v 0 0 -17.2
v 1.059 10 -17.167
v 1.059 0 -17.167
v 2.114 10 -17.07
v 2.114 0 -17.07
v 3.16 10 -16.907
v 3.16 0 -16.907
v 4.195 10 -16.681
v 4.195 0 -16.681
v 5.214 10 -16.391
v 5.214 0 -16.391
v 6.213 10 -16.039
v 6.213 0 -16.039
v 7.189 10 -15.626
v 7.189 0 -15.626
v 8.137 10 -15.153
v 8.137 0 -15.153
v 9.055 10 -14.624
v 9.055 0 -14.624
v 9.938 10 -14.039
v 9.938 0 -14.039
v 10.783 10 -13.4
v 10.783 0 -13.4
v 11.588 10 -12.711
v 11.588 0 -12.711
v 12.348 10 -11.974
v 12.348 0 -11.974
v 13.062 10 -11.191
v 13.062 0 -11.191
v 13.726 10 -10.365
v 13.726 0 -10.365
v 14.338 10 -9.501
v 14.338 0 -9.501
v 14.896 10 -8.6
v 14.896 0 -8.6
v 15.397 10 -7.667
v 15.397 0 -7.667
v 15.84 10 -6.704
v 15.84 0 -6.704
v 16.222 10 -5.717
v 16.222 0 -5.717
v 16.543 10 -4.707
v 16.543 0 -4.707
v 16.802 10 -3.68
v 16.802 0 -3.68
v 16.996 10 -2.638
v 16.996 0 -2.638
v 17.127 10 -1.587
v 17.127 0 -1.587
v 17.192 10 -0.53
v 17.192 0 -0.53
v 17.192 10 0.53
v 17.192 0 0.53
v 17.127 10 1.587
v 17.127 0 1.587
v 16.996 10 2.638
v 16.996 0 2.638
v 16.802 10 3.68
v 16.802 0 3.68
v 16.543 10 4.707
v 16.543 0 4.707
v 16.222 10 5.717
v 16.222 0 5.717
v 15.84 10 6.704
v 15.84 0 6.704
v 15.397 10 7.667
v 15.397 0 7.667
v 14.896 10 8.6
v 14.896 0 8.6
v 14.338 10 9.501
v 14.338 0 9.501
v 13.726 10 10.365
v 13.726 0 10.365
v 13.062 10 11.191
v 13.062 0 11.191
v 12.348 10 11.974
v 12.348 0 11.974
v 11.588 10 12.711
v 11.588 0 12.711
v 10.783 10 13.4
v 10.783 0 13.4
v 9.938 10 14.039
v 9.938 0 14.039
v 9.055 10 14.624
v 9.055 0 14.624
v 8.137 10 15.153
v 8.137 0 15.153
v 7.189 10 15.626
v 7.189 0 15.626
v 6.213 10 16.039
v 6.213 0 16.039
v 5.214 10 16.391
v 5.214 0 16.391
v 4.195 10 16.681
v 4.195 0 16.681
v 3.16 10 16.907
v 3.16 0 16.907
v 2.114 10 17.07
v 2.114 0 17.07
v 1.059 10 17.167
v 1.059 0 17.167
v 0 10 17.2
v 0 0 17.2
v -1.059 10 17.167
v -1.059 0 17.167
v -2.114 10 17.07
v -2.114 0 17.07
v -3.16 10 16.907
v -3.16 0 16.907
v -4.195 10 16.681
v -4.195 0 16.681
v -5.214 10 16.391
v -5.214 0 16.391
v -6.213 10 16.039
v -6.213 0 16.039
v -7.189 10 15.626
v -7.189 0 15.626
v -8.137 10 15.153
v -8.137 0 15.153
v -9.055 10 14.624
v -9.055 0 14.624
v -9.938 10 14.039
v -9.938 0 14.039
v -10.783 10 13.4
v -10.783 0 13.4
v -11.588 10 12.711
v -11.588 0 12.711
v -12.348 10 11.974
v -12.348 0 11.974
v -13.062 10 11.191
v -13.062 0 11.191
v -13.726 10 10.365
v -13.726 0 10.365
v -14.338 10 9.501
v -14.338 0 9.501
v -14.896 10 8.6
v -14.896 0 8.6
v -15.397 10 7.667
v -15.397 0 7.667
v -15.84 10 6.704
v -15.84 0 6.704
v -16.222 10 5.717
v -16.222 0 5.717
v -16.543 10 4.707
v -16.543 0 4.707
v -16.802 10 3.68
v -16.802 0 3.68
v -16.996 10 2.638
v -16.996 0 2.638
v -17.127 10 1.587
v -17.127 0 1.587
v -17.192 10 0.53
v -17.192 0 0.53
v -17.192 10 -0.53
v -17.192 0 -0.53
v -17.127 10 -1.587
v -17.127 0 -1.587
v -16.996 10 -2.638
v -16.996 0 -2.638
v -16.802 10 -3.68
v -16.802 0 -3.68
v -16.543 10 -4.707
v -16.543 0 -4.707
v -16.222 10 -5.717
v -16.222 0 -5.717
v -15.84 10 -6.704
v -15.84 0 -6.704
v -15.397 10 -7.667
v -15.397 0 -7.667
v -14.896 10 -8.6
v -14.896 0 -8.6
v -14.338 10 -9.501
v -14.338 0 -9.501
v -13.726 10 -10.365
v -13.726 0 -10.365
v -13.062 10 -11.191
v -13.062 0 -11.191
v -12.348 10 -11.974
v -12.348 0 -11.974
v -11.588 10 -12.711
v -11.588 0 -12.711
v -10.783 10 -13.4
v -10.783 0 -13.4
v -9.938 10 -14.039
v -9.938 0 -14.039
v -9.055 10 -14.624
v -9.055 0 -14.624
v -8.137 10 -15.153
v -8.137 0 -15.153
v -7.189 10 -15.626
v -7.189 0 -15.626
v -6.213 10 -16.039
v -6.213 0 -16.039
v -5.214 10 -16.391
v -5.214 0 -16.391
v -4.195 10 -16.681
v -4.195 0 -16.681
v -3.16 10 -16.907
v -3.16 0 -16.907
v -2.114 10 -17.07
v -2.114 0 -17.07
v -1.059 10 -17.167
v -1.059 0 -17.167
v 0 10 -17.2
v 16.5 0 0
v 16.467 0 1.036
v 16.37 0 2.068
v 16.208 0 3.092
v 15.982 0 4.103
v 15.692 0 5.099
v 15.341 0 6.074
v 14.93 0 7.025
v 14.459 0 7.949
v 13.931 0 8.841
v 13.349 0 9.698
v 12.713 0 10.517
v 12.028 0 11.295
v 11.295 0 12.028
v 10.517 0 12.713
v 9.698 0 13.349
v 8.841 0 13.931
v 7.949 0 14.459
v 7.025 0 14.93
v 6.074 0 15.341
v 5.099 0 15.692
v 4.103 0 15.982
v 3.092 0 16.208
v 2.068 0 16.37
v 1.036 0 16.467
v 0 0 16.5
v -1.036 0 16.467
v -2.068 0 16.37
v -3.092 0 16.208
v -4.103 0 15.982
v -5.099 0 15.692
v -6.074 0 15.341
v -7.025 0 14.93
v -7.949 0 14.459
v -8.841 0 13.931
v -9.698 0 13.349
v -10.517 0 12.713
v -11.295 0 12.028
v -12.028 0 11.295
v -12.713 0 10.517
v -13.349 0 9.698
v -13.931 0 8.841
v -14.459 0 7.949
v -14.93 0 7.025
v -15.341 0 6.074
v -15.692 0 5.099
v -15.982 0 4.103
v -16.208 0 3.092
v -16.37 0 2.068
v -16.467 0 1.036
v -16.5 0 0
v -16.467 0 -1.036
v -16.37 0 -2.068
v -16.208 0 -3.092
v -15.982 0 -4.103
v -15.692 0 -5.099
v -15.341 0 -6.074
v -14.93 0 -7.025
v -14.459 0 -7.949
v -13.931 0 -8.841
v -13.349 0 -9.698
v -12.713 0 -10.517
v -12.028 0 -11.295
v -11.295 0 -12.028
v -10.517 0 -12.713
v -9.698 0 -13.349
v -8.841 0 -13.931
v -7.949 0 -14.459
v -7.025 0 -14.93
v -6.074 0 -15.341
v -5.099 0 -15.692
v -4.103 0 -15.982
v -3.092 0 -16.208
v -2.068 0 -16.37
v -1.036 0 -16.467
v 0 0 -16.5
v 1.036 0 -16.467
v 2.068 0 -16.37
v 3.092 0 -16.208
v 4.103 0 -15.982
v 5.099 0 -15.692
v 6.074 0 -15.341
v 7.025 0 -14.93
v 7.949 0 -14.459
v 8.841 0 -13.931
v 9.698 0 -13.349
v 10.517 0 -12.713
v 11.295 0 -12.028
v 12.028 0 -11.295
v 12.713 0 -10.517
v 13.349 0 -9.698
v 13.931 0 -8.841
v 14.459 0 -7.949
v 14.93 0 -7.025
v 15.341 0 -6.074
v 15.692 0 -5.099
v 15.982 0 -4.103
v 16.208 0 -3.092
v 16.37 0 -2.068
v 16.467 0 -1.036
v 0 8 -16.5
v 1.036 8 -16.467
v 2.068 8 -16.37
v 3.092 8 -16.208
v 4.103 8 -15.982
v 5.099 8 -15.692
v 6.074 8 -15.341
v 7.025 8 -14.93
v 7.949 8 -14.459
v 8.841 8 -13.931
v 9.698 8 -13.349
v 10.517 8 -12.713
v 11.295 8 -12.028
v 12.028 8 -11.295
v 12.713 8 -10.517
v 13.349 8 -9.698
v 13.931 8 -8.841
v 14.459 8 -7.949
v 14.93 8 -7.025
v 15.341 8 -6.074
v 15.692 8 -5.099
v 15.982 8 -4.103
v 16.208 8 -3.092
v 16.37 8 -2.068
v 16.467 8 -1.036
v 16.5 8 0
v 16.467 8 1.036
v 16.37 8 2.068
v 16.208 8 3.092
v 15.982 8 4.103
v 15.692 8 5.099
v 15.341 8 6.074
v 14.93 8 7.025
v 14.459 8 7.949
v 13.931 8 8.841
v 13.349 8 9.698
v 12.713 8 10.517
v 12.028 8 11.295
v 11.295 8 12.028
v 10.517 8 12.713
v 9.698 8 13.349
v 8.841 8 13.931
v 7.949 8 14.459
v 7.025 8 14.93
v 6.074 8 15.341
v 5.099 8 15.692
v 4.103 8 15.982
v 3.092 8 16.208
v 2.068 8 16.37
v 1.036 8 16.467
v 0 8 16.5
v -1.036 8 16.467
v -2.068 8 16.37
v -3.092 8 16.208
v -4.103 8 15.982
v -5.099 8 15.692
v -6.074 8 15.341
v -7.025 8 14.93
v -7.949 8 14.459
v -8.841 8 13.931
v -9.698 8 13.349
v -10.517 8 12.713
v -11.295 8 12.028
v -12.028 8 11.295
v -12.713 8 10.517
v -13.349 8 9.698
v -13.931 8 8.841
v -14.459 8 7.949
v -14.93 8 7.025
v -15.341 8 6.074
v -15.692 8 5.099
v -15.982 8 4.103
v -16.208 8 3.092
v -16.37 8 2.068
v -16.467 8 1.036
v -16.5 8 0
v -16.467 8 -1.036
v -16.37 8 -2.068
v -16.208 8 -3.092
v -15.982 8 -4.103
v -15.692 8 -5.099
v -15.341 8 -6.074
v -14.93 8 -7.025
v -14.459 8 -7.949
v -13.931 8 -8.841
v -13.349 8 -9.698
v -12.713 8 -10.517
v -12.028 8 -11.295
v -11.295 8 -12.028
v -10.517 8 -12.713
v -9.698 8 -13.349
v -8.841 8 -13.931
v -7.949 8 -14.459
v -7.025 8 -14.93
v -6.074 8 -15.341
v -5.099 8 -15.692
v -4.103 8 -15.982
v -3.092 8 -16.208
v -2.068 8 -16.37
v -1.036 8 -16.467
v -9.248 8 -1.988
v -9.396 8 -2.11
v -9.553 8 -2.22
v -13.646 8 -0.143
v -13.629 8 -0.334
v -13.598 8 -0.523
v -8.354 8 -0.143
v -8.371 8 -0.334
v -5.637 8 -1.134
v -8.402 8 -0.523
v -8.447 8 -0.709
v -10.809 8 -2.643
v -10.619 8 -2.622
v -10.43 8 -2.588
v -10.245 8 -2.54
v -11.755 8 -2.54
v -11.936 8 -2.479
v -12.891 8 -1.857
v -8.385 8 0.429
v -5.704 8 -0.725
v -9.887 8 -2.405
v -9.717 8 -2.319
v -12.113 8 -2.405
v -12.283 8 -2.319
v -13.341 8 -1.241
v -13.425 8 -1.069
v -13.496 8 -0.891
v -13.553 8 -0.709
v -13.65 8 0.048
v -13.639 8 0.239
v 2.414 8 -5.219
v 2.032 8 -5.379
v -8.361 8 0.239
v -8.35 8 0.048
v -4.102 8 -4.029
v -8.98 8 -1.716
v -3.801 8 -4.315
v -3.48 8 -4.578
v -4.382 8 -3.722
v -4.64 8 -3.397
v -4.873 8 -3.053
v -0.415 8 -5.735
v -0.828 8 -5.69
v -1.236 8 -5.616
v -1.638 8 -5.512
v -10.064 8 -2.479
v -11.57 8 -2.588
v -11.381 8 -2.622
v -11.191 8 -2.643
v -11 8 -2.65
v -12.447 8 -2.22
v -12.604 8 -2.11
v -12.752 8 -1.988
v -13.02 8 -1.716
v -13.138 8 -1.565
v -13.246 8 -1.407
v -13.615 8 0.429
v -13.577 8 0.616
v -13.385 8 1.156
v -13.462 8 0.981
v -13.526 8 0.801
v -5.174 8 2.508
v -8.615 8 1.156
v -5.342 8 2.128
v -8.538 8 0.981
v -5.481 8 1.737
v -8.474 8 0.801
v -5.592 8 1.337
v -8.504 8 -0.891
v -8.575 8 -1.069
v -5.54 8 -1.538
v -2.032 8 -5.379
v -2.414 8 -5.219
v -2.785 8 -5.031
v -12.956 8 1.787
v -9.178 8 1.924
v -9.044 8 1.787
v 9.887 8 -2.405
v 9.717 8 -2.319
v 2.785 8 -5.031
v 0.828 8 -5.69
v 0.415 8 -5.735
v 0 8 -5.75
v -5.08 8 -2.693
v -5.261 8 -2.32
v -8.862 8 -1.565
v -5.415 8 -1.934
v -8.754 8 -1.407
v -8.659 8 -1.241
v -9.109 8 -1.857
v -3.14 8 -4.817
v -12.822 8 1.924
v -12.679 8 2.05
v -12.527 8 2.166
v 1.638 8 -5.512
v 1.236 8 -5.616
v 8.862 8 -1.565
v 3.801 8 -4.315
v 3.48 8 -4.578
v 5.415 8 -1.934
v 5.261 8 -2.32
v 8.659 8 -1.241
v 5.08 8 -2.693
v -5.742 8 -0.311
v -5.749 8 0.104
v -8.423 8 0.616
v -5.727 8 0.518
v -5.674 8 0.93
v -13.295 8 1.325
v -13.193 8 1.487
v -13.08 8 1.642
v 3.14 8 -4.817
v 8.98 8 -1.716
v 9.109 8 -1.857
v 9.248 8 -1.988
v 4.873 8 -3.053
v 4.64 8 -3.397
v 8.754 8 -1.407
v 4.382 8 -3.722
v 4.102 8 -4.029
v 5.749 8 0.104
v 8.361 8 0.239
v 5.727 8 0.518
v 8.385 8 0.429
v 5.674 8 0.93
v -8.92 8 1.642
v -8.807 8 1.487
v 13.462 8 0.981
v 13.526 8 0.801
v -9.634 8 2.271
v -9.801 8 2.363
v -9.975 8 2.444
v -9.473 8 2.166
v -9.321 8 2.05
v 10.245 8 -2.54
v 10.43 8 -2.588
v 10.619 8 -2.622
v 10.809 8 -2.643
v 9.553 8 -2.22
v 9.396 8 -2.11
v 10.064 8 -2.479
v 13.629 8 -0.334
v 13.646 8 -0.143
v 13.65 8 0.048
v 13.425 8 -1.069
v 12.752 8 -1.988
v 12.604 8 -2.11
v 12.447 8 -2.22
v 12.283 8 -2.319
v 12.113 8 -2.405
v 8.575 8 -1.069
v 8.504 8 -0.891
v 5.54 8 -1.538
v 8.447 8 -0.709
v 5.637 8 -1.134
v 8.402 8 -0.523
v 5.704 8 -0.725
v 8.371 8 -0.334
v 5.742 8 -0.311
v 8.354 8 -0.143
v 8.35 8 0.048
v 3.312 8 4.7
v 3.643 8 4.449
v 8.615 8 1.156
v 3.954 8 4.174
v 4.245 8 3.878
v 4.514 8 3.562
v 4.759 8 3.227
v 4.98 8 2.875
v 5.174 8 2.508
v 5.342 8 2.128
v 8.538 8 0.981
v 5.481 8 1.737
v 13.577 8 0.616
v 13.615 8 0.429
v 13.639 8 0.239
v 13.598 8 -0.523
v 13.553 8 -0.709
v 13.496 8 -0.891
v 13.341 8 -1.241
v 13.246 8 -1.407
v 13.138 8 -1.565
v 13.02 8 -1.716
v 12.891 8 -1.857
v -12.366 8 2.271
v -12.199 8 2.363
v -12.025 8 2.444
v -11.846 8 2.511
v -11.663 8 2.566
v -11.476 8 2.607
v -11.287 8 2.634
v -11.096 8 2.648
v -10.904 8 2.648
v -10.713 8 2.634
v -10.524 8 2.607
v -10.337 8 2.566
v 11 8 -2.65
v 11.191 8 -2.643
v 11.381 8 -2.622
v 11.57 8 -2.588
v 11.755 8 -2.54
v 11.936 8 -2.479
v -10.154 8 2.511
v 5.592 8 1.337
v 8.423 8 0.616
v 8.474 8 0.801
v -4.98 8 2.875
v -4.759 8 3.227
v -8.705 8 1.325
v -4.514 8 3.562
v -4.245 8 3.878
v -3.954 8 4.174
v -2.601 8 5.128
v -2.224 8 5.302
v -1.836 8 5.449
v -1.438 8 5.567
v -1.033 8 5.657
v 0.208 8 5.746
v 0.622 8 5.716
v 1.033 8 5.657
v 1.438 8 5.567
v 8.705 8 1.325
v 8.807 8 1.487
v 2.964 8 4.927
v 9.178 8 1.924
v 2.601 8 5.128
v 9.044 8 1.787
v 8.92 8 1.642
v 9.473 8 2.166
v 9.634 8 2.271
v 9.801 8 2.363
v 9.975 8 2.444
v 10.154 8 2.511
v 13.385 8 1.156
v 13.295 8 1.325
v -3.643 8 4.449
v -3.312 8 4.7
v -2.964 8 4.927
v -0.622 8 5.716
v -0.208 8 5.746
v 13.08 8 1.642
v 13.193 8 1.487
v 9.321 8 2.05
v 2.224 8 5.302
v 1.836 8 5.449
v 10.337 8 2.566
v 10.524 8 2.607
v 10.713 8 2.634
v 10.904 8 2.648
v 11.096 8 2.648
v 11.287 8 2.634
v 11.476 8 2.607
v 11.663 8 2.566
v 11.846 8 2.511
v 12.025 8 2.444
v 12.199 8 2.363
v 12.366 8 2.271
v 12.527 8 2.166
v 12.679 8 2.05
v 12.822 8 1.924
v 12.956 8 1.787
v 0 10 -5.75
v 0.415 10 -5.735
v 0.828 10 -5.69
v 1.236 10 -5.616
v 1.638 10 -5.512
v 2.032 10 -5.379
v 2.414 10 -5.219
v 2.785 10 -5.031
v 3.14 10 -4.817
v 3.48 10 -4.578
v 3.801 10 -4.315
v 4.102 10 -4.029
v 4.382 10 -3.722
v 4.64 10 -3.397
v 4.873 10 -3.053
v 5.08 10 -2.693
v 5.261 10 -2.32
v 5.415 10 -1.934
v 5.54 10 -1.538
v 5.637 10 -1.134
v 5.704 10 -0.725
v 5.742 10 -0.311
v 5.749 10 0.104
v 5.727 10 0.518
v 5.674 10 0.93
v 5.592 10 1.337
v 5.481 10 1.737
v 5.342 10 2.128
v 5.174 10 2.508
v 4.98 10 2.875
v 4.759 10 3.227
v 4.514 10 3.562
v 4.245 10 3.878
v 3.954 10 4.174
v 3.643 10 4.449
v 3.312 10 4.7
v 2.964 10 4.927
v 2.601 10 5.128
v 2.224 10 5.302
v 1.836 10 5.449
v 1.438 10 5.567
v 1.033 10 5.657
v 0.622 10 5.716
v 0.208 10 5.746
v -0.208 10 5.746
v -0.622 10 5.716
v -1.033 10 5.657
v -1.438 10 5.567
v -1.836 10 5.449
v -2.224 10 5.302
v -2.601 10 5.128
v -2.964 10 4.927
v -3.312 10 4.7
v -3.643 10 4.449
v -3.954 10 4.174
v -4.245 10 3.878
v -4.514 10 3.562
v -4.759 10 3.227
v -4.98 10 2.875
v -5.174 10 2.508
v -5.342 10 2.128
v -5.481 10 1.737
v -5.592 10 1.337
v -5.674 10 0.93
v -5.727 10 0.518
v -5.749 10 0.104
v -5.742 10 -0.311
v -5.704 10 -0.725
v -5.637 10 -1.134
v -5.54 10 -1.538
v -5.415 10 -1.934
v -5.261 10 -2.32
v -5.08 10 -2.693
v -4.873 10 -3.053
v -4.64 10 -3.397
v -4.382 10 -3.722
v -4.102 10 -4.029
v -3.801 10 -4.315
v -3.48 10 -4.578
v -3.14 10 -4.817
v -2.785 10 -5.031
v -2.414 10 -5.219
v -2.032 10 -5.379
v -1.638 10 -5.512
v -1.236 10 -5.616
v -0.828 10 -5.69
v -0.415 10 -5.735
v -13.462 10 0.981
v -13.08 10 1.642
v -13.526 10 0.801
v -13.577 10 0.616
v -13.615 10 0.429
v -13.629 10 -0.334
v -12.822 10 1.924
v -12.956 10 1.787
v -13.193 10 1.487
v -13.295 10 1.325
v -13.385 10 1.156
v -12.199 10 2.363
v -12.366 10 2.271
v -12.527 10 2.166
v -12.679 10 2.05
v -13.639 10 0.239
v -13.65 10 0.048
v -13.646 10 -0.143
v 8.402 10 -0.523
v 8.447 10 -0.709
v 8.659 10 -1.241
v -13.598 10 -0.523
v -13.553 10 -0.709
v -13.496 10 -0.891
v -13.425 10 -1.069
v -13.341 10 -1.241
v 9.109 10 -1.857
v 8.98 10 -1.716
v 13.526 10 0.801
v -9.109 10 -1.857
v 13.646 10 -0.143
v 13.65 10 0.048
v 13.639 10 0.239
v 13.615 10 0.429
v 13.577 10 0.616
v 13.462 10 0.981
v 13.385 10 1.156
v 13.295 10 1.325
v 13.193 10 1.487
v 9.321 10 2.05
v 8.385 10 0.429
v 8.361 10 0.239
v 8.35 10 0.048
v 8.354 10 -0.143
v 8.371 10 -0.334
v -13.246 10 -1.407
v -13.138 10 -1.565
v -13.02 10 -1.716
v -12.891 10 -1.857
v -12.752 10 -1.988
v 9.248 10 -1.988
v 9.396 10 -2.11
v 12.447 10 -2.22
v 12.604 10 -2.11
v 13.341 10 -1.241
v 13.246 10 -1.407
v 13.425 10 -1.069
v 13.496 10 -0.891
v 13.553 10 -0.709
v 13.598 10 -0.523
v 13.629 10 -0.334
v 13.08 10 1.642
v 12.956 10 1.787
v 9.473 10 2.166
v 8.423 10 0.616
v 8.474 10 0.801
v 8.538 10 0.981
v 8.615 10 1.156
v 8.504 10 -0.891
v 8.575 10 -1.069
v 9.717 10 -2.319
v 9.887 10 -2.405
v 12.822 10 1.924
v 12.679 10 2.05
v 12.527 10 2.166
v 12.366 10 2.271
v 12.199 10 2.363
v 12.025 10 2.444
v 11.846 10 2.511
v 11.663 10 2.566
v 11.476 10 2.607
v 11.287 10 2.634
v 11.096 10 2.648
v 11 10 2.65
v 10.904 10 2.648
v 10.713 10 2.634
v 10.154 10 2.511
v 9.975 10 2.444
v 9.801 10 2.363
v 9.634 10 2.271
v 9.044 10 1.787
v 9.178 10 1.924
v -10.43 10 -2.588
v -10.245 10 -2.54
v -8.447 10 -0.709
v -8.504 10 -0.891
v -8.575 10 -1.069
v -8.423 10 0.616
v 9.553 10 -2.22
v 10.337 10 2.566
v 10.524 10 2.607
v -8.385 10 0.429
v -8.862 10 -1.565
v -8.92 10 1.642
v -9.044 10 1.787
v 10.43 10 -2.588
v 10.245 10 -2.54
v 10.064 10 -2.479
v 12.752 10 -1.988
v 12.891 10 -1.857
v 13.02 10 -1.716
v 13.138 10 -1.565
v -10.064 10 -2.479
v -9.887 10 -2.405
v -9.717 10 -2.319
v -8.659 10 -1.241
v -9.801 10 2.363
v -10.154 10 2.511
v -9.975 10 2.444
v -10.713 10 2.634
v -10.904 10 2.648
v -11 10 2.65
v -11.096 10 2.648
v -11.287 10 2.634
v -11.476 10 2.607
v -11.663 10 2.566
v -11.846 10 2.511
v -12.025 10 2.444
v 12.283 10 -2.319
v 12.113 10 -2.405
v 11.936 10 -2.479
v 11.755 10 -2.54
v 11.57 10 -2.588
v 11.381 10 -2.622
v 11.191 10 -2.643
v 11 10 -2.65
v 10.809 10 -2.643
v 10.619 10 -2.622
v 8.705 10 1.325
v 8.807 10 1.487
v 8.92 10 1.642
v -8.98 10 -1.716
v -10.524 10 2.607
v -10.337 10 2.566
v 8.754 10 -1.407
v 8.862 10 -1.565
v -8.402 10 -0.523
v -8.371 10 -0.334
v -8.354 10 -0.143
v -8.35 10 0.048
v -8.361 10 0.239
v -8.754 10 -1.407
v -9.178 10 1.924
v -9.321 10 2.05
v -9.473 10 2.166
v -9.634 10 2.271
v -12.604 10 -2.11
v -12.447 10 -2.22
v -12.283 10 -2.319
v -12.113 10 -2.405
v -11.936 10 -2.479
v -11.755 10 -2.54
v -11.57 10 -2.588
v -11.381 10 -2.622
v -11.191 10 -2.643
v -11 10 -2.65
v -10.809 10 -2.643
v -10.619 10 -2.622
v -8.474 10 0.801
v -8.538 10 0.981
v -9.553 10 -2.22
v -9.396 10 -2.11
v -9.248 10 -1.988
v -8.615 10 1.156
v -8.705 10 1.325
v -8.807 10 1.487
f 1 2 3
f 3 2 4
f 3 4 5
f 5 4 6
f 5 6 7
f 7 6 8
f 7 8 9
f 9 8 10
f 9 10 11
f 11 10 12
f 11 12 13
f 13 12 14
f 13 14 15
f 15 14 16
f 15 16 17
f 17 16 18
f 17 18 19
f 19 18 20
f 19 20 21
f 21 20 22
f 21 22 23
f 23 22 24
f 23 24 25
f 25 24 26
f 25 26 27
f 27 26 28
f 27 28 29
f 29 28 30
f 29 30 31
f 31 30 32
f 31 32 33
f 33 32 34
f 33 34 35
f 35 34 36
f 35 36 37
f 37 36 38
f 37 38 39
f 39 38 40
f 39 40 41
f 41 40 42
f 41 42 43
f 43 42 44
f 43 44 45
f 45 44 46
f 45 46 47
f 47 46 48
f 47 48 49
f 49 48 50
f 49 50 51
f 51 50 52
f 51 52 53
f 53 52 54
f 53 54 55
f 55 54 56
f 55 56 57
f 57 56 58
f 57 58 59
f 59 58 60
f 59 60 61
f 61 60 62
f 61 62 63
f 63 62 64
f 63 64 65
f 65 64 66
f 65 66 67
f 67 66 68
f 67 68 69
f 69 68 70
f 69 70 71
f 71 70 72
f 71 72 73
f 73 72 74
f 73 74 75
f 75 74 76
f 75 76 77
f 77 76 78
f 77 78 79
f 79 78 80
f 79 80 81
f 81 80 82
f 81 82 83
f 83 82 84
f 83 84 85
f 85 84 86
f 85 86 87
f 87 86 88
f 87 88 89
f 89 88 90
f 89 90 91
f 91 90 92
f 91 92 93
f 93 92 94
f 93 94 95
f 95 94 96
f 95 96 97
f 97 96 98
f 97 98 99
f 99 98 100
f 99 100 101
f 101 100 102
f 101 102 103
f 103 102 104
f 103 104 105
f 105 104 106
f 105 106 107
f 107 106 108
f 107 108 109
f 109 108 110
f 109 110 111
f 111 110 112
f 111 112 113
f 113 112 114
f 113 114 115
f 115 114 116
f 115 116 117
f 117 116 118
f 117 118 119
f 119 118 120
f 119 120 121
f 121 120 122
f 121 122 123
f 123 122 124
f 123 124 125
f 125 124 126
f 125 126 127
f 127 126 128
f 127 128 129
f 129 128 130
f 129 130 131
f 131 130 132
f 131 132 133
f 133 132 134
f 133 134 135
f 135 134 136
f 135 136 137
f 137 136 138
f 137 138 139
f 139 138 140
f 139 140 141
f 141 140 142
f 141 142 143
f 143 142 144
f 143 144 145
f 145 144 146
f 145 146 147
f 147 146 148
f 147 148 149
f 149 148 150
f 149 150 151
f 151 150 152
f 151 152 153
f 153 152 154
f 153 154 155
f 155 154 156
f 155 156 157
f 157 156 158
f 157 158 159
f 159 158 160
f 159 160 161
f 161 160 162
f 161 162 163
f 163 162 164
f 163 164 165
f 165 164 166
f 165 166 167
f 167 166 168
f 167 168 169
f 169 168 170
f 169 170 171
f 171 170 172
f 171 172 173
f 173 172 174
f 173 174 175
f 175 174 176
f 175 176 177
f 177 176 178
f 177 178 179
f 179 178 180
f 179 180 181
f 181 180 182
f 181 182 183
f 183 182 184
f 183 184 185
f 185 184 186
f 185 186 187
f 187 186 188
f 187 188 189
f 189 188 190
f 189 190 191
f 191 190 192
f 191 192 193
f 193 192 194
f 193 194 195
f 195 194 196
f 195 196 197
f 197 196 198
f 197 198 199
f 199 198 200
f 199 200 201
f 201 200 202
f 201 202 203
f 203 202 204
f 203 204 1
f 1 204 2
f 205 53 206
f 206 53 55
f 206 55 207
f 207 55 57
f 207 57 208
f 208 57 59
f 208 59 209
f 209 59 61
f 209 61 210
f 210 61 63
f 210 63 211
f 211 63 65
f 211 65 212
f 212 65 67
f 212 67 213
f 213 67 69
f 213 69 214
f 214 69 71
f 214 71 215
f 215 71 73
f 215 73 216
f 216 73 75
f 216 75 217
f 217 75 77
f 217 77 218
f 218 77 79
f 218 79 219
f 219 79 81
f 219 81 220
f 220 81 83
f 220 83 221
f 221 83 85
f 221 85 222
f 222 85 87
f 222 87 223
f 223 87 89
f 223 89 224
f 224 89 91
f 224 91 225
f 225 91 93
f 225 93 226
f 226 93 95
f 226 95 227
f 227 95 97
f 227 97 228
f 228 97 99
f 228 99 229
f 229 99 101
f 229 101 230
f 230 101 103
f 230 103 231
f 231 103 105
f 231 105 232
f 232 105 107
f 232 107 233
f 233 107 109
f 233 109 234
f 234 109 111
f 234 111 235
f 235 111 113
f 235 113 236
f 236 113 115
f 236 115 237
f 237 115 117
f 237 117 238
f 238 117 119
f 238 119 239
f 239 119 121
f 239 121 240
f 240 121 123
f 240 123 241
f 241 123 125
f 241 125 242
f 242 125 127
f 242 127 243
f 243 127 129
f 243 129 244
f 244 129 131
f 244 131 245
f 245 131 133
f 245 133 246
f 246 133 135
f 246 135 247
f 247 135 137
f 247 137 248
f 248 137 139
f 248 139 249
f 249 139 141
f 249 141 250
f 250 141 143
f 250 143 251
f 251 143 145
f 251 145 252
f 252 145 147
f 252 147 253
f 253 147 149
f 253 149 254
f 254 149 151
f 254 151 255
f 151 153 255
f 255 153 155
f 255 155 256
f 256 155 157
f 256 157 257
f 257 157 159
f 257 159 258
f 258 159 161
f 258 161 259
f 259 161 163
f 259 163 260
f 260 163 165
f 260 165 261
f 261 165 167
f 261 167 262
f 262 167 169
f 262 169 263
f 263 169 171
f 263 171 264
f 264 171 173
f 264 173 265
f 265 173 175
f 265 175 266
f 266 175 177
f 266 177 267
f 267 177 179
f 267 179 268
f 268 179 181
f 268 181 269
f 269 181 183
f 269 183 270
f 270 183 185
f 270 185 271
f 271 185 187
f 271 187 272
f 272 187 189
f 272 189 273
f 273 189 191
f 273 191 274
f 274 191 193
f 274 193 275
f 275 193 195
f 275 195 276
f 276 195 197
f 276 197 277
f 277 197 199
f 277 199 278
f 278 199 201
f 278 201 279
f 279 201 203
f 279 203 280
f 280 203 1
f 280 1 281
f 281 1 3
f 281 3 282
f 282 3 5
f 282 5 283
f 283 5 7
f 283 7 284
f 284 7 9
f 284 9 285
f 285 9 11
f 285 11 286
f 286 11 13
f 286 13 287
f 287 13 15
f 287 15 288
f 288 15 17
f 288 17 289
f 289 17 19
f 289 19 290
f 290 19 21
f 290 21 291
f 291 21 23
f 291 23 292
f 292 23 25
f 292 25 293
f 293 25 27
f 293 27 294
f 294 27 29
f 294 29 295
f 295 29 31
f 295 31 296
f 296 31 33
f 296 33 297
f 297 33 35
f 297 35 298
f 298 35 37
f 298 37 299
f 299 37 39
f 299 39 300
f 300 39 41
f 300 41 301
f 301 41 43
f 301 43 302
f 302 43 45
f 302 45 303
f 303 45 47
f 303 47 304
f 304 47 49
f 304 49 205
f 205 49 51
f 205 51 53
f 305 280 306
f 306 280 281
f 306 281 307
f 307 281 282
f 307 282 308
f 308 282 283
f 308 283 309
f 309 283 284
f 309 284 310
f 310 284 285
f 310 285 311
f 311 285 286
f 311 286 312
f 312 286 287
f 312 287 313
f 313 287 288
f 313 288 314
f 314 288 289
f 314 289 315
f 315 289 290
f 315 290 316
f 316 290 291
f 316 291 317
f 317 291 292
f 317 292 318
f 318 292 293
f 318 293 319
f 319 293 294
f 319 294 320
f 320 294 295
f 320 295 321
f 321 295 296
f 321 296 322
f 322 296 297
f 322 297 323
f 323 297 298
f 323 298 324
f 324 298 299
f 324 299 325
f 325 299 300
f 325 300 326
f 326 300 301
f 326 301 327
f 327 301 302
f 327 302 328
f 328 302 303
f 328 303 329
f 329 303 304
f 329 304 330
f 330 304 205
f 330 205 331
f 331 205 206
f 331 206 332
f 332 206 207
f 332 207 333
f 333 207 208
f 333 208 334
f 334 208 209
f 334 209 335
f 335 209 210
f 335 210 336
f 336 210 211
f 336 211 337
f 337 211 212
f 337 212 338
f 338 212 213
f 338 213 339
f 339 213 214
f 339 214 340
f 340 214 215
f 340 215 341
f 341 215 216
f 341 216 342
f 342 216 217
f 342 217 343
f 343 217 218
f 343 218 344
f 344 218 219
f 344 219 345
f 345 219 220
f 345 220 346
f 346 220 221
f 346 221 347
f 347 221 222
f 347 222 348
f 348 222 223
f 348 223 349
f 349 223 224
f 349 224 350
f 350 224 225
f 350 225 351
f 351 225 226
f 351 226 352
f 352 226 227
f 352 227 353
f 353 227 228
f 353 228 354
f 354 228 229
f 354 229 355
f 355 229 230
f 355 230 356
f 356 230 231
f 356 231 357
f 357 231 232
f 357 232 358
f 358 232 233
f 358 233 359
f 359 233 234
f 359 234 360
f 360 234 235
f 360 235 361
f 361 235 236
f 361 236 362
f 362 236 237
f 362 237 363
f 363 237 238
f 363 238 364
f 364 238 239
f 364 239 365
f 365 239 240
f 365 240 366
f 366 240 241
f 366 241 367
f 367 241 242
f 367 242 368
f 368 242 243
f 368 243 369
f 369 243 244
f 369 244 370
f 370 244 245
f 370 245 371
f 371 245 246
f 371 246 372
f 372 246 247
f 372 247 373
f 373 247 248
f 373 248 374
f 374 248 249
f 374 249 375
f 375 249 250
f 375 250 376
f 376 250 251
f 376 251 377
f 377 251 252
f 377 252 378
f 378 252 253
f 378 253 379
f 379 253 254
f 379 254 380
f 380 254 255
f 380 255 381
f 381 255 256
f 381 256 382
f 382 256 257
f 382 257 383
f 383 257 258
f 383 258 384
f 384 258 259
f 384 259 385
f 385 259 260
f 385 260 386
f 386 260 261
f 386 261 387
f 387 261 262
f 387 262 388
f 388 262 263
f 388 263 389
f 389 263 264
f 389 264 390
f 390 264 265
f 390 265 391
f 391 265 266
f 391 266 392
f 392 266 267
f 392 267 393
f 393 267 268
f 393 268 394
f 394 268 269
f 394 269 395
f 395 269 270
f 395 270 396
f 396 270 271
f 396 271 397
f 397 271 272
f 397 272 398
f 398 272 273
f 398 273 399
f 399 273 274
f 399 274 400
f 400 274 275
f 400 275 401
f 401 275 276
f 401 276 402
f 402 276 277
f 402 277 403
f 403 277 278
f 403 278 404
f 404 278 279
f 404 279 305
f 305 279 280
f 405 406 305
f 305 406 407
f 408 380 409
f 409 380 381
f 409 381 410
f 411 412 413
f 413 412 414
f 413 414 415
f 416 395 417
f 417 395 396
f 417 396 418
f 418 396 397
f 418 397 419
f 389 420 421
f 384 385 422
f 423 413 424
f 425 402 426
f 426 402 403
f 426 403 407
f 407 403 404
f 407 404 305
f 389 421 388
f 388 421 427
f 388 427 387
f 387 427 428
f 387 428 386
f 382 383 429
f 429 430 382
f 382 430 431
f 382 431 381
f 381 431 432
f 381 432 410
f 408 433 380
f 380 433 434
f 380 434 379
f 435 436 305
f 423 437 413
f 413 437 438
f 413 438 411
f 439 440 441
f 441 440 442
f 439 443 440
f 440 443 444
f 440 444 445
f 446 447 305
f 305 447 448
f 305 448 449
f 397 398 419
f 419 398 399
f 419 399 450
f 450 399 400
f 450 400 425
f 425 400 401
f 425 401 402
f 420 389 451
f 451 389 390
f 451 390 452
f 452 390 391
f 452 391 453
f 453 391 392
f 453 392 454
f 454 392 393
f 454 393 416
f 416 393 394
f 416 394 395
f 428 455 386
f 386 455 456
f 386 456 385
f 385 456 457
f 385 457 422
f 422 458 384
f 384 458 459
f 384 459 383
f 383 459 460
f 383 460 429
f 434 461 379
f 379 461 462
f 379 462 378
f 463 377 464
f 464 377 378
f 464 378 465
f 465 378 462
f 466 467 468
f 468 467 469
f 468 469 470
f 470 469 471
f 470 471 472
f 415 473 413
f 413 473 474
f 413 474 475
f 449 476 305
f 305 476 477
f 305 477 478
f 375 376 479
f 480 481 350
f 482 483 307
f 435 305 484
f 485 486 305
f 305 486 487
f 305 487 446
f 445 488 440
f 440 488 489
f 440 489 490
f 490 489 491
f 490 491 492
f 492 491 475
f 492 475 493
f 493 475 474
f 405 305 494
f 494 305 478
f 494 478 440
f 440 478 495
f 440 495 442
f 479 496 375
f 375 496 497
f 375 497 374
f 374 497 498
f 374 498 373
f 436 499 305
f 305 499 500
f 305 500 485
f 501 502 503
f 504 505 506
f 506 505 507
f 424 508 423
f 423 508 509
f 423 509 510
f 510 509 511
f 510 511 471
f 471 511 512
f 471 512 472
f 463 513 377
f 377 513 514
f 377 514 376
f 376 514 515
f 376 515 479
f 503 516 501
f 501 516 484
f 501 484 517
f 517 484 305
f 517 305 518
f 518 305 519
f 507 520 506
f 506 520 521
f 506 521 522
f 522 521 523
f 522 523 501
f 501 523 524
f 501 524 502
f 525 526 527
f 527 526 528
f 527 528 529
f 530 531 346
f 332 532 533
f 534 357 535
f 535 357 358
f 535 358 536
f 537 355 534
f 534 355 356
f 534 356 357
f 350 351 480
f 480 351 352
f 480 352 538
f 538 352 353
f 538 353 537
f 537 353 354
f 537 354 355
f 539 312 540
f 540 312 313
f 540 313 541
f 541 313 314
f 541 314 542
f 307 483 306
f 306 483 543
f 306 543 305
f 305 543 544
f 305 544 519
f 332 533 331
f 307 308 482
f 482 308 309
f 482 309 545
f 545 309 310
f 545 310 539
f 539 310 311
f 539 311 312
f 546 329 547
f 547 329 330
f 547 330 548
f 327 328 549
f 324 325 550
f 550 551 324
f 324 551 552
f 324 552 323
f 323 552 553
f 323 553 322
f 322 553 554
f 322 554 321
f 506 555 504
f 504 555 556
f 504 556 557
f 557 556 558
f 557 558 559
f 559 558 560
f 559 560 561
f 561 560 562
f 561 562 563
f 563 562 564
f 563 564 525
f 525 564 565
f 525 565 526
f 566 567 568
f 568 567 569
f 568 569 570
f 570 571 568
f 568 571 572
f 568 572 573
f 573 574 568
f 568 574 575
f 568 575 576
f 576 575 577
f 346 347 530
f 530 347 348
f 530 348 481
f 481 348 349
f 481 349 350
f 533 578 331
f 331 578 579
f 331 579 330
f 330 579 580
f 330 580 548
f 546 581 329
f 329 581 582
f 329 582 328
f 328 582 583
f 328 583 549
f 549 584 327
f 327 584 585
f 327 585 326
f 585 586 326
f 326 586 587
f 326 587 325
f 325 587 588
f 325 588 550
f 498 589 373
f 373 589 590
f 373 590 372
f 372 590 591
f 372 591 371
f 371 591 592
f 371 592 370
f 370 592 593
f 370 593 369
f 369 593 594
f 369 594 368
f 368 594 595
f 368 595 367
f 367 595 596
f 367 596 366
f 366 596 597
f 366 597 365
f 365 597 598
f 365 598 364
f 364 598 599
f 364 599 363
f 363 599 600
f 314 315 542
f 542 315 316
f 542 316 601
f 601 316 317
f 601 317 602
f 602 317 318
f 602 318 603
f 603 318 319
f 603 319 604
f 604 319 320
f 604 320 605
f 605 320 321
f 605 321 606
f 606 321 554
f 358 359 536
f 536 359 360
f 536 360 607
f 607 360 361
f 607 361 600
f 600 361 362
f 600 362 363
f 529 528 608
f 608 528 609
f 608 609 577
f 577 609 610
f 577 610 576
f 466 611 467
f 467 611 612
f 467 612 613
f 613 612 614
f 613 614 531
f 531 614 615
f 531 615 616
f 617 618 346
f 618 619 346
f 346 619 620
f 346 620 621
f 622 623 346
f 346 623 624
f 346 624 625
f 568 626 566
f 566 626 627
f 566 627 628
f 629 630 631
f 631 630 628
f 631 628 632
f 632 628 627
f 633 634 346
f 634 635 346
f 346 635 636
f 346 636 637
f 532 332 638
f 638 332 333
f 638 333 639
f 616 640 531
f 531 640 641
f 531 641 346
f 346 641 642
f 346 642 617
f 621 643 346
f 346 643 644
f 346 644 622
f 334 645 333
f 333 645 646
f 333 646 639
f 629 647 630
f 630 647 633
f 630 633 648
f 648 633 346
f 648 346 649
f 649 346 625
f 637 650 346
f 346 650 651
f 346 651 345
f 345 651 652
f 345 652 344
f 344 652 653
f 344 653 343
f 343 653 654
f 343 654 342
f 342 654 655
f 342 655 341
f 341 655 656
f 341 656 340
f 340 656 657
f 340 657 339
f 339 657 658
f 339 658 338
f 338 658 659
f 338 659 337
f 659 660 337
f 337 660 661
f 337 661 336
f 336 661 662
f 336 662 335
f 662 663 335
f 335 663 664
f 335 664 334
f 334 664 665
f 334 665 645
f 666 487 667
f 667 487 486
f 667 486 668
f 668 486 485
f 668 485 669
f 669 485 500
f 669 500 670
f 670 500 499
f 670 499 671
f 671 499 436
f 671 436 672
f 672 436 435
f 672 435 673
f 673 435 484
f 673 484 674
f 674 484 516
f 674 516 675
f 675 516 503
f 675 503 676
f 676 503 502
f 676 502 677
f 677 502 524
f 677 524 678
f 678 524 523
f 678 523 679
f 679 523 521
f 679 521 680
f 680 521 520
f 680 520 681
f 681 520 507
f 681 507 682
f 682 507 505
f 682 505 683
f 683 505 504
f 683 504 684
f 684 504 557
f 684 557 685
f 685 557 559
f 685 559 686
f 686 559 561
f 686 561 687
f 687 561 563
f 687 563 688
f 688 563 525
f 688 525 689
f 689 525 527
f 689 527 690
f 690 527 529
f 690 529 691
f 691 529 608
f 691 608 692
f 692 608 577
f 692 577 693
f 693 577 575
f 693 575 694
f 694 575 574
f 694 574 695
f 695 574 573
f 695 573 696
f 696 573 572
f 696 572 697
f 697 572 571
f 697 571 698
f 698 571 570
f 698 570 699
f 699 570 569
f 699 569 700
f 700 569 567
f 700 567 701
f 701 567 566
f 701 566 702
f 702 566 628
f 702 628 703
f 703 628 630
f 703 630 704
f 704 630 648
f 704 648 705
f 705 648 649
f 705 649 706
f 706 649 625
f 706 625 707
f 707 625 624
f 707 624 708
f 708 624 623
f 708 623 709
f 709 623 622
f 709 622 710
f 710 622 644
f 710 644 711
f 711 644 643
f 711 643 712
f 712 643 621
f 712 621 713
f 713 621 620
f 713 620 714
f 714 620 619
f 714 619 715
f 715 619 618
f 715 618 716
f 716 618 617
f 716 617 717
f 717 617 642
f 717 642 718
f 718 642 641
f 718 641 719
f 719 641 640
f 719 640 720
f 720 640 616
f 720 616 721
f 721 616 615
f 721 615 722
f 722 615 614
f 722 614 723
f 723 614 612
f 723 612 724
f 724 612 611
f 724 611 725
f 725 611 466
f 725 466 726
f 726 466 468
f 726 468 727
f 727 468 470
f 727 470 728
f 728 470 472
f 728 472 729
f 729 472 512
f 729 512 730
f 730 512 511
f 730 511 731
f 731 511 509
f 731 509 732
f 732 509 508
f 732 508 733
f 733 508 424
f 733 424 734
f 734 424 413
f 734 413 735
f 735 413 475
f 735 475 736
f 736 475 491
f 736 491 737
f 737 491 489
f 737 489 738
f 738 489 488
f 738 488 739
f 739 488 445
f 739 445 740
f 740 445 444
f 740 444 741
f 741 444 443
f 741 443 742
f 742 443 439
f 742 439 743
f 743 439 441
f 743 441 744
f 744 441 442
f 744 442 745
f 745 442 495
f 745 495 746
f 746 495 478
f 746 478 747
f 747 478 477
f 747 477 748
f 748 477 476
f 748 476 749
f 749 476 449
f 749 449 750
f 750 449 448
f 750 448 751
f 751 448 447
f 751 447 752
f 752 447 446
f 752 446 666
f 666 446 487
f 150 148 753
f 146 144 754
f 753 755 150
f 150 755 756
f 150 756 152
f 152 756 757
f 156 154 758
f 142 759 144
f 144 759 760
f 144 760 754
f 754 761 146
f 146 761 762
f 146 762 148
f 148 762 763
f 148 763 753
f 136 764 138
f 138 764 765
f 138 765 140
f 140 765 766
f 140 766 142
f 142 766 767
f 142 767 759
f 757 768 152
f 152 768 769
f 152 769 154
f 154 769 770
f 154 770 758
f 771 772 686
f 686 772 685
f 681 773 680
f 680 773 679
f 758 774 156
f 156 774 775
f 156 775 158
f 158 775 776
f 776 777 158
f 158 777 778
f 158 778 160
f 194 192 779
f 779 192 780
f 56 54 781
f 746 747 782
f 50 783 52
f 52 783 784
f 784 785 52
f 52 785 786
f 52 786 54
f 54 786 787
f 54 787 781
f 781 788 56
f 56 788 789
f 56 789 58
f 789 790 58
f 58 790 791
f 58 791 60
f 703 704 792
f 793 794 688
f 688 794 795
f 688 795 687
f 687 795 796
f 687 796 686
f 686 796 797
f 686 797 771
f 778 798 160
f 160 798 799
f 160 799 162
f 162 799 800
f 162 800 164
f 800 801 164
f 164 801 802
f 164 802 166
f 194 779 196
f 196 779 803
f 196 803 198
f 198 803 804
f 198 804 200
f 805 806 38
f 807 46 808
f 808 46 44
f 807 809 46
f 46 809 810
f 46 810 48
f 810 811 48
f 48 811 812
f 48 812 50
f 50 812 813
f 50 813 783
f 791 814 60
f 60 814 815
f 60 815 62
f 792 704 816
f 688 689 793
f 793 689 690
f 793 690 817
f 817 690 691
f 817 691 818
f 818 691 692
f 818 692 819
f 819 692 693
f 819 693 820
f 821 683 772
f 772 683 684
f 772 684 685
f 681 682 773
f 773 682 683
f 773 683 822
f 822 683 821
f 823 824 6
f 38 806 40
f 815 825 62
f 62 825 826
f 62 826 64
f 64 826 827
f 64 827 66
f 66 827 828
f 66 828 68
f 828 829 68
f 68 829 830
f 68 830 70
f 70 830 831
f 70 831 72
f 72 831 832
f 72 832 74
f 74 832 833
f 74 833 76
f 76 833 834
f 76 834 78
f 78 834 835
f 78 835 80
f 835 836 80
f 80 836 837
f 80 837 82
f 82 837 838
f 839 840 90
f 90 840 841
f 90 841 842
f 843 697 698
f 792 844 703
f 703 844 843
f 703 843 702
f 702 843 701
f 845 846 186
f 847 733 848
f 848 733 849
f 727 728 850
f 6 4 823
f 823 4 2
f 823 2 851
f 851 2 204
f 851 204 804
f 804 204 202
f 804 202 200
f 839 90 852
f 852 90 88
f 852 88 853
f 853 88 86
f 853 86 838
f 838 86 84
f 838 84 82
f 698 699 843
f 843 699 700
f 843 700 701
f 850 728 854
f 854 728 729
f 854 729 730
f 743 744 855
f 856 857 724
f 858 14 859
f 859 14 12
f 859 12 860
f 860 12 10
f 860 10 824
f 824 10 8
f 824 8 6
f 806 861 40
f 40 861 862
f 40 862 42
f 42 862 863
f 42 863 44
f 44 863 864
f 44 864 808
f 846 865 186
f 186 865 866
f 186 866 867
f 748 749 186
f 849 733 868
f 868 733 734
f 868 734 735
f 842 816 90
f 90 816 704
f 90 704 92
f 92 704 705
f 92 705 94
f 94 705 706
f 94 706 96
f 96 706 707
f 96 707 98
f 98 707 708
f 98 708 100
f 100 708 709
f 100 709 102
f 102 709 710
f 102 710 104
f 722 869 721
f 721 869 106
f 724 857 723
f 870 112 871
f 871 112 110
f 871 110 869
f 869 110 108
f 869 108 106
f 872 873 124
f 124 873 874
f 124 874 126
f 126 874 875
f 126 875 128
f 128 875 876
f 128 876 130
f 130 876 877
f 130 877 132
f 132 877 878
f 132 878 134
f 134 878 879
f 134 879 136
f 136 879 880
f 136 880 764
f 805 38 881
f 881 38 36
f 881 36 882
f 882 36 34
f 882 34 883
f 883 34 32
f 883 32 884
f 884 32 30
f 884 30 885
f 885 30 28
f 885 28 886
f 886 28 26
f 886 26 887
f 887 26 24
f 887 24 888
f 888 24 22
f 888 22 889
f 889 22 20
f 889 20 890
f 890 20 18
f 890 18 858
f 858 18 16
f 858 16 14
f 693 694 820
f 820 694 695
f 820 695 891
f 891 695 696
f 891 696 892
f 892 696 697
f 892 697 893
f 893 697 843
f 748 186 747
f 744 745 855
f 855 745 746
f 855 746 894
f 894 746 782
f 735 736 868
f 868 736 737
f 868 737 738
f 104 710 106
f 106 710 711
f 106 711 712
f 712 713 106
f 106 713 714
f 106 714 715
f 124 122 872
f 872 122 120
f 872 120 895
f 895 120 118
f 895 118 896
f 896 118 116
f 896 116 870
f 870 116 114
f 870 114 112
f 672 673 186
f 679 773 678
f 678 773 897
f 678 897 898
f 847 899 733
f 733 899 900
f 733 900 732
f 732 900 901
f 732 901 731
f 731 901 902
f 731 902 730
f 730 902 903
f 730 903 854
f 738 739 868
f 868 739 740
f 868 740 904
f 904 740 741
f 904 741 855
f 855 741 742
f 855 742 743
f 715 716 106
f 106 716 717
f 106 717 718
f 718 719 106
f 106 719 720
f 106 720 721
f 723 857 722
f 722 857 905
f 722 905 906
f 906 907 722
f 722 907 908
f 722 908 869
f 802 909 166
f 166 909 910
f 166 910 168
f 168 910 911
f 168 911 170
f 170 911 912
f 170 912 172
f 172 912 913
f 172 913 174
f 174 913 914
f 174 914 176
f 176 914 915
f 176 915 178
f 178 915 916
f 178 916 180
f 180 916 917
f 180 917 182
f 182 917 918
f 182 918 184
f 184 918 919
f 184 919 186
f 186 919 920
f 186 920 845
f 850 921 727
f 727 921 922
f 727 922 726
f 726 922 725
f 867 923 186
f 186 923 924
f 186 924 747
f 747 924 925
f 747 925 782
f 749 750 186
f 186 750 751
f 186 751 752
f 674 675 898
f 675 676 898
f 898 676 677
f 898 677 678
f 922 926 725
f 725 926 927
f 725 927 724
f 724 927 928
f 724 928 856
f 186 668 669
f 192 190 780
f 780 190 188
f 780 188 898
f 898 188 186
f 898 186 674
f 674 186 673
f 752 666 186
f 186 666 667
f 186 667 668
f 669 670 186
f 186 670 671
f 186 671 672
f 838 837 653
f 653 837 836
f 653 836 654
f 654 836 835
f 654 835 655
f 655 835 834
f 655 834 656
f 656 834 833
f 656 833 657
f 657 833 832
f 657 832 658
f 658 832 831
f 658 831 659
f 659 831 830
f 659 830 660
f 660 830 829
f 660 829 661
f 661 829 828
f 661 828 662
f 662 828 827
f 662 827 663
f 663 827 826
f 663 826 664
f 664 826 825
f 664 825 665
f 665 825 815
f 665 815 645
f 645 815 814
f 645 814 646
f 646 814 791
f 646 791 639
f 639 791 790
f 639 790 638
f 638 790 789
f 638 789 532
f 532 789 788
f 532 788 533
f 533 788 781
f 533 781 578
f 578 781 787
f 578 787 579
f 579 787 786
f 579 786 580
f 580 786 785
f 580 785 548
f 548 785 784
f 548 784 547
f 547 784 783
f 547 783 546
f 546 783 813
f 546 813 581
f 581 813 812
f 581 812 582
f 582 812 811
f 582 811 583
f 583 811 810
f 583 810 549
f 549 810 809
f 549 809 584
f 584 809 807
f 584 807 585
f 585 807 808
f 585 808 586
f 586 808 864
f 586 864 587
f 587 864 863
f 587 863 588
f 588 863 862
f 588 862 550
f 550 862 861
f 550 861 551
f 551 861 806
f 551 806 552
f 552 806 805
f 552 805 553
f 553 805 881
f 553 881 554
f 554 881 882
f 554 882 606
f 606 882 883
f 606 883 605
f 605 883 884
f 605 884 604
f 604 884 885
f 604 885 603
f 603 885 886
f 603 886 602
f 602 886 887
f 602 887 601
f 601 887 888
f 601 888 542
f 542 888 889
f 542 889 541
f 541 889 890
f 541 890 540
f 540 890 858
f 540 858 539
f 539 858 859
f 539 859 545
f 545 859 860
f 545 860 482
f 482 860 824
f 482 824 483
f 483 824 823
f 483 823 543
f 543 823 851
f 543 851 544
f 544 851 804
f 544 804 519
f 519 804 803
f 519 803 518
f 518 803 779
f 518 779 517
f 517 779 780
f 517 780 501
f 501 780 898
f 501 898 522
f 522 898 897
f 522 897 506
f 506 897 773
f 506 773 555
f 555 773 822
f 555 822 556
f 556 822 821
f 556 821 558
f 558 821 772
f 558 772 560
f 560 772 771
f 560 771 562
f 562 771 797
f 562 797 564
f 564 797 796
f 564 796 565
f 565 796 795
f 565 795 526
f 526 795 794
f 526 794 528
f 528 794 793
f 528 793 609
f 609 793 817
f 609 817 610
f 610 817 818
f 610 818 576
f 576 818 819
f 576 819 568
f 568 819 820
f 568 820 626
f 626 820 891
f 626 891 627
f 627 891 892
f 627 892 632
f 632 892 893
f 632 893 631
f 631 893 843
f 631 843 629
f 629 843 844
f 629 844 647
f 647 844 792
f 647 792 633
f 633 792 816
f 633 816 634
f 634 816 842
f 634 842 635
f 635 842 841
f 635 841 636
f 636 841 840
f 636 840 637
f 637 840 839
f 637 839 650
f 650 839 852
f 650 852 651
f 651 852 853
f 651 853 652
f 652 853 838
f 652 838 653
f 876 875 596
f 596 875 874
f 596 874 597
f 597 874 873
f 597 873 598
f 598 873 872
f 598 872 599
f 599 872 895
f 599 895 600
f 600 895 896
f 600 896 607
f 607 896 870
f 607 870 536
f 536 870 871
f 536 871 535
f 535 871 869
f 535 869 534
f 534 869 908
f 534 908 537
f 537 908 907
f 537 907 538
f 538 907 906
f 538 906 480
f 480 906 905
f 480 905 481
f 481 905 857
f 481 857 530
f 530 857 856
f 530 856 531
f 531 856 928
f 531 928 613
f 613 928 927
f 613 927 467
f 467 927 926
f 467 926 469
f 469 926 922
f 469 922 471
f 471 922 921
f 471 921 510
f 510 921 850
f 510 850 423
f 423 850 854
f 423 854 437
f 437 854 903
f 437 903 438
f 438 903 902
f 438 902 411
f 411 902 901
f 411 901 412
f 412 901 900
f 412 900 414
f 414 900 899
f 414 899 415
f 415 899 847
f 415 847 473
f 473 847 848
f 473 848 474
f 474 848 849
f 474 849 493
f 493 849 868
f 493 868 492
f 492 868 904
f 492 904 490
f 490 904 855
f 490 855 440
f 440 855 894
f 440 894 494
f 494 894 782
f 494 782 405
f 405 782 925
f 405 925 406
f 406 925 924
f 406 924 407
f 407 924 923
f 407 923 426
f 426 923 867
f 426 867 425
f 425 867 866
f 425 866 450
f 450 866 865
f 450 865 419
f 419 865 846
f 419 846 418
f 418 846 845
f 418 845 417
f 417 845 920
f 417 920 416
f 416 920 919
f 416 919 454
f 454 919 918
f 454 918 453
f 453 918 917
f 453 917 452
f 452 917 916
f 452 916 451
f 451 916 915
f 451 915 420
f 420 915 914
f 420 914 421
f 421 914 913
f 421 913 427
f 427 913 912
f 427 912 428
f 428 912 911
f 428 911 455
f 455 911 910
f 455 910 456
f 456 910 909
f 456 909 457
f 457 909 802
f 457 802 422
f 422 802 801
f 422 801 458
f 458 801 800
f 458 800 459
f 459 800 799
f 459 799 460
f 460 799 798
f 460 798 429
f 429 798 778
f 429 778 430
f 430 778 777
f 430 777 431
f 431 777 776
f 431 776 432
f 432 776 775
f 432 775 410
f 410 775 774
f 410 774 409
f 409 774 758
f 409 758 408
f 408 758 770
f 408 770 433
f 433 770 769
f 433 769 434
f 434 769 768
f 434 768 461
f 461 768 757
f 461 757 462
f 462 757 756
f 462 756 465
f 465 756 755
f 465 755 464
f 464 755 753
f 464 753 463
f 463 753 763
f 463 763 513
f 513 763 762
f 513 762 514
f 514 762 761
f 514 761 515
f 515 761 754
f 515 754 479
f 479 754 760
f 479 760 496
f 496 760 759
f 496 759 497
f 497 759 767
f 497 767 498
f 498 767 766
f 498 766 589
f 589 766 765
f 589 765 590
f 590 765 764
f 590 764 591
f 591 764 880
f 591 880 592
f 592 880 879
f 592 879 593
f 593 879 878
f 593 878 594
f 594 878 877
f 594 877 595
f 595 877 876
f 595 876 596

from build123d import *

# Parameters (mm, degrees)
SKETCH2_R          = 2.65
CUT_EXTRUDE1_DEPTH = 10


with BuildPart() as part:
    # Sketch1 → Revolve1 (revolve)
    with BuildSketch(Plane.XY, mode=Mode.PRIVATE) as revolve1_sk:
        Polygon((5.75, 10), (17.2, 10), (17.2, 0), (16.5, 0), (16.5, 8), (5.75, 8), align=None)
    revolve(revolve1_sk.sketch.rotate(Axis((0, -9.26010101, 0), (0, 1, 0)), 90), axis=Axis((0, -9.26010101, 0), (0, 1, 0)))

    # Sketch2 → Cut-Extrude1 (cut)
    with BuildSketch(Plane.XZ.offset(-8)):
        with Locations(Location((-11, 0, 0), (0, 0, 270))):
            Circle(SKETCH2_R)
        with Locations(Location((11, 0, 0), (0, 0, 270))):
            Circle(SKETCH2_R)
    extrude(amount=-CUT_EXTRUDE1_DEPTH, mode=Mode.SUBTRACT)


solid = part.part
